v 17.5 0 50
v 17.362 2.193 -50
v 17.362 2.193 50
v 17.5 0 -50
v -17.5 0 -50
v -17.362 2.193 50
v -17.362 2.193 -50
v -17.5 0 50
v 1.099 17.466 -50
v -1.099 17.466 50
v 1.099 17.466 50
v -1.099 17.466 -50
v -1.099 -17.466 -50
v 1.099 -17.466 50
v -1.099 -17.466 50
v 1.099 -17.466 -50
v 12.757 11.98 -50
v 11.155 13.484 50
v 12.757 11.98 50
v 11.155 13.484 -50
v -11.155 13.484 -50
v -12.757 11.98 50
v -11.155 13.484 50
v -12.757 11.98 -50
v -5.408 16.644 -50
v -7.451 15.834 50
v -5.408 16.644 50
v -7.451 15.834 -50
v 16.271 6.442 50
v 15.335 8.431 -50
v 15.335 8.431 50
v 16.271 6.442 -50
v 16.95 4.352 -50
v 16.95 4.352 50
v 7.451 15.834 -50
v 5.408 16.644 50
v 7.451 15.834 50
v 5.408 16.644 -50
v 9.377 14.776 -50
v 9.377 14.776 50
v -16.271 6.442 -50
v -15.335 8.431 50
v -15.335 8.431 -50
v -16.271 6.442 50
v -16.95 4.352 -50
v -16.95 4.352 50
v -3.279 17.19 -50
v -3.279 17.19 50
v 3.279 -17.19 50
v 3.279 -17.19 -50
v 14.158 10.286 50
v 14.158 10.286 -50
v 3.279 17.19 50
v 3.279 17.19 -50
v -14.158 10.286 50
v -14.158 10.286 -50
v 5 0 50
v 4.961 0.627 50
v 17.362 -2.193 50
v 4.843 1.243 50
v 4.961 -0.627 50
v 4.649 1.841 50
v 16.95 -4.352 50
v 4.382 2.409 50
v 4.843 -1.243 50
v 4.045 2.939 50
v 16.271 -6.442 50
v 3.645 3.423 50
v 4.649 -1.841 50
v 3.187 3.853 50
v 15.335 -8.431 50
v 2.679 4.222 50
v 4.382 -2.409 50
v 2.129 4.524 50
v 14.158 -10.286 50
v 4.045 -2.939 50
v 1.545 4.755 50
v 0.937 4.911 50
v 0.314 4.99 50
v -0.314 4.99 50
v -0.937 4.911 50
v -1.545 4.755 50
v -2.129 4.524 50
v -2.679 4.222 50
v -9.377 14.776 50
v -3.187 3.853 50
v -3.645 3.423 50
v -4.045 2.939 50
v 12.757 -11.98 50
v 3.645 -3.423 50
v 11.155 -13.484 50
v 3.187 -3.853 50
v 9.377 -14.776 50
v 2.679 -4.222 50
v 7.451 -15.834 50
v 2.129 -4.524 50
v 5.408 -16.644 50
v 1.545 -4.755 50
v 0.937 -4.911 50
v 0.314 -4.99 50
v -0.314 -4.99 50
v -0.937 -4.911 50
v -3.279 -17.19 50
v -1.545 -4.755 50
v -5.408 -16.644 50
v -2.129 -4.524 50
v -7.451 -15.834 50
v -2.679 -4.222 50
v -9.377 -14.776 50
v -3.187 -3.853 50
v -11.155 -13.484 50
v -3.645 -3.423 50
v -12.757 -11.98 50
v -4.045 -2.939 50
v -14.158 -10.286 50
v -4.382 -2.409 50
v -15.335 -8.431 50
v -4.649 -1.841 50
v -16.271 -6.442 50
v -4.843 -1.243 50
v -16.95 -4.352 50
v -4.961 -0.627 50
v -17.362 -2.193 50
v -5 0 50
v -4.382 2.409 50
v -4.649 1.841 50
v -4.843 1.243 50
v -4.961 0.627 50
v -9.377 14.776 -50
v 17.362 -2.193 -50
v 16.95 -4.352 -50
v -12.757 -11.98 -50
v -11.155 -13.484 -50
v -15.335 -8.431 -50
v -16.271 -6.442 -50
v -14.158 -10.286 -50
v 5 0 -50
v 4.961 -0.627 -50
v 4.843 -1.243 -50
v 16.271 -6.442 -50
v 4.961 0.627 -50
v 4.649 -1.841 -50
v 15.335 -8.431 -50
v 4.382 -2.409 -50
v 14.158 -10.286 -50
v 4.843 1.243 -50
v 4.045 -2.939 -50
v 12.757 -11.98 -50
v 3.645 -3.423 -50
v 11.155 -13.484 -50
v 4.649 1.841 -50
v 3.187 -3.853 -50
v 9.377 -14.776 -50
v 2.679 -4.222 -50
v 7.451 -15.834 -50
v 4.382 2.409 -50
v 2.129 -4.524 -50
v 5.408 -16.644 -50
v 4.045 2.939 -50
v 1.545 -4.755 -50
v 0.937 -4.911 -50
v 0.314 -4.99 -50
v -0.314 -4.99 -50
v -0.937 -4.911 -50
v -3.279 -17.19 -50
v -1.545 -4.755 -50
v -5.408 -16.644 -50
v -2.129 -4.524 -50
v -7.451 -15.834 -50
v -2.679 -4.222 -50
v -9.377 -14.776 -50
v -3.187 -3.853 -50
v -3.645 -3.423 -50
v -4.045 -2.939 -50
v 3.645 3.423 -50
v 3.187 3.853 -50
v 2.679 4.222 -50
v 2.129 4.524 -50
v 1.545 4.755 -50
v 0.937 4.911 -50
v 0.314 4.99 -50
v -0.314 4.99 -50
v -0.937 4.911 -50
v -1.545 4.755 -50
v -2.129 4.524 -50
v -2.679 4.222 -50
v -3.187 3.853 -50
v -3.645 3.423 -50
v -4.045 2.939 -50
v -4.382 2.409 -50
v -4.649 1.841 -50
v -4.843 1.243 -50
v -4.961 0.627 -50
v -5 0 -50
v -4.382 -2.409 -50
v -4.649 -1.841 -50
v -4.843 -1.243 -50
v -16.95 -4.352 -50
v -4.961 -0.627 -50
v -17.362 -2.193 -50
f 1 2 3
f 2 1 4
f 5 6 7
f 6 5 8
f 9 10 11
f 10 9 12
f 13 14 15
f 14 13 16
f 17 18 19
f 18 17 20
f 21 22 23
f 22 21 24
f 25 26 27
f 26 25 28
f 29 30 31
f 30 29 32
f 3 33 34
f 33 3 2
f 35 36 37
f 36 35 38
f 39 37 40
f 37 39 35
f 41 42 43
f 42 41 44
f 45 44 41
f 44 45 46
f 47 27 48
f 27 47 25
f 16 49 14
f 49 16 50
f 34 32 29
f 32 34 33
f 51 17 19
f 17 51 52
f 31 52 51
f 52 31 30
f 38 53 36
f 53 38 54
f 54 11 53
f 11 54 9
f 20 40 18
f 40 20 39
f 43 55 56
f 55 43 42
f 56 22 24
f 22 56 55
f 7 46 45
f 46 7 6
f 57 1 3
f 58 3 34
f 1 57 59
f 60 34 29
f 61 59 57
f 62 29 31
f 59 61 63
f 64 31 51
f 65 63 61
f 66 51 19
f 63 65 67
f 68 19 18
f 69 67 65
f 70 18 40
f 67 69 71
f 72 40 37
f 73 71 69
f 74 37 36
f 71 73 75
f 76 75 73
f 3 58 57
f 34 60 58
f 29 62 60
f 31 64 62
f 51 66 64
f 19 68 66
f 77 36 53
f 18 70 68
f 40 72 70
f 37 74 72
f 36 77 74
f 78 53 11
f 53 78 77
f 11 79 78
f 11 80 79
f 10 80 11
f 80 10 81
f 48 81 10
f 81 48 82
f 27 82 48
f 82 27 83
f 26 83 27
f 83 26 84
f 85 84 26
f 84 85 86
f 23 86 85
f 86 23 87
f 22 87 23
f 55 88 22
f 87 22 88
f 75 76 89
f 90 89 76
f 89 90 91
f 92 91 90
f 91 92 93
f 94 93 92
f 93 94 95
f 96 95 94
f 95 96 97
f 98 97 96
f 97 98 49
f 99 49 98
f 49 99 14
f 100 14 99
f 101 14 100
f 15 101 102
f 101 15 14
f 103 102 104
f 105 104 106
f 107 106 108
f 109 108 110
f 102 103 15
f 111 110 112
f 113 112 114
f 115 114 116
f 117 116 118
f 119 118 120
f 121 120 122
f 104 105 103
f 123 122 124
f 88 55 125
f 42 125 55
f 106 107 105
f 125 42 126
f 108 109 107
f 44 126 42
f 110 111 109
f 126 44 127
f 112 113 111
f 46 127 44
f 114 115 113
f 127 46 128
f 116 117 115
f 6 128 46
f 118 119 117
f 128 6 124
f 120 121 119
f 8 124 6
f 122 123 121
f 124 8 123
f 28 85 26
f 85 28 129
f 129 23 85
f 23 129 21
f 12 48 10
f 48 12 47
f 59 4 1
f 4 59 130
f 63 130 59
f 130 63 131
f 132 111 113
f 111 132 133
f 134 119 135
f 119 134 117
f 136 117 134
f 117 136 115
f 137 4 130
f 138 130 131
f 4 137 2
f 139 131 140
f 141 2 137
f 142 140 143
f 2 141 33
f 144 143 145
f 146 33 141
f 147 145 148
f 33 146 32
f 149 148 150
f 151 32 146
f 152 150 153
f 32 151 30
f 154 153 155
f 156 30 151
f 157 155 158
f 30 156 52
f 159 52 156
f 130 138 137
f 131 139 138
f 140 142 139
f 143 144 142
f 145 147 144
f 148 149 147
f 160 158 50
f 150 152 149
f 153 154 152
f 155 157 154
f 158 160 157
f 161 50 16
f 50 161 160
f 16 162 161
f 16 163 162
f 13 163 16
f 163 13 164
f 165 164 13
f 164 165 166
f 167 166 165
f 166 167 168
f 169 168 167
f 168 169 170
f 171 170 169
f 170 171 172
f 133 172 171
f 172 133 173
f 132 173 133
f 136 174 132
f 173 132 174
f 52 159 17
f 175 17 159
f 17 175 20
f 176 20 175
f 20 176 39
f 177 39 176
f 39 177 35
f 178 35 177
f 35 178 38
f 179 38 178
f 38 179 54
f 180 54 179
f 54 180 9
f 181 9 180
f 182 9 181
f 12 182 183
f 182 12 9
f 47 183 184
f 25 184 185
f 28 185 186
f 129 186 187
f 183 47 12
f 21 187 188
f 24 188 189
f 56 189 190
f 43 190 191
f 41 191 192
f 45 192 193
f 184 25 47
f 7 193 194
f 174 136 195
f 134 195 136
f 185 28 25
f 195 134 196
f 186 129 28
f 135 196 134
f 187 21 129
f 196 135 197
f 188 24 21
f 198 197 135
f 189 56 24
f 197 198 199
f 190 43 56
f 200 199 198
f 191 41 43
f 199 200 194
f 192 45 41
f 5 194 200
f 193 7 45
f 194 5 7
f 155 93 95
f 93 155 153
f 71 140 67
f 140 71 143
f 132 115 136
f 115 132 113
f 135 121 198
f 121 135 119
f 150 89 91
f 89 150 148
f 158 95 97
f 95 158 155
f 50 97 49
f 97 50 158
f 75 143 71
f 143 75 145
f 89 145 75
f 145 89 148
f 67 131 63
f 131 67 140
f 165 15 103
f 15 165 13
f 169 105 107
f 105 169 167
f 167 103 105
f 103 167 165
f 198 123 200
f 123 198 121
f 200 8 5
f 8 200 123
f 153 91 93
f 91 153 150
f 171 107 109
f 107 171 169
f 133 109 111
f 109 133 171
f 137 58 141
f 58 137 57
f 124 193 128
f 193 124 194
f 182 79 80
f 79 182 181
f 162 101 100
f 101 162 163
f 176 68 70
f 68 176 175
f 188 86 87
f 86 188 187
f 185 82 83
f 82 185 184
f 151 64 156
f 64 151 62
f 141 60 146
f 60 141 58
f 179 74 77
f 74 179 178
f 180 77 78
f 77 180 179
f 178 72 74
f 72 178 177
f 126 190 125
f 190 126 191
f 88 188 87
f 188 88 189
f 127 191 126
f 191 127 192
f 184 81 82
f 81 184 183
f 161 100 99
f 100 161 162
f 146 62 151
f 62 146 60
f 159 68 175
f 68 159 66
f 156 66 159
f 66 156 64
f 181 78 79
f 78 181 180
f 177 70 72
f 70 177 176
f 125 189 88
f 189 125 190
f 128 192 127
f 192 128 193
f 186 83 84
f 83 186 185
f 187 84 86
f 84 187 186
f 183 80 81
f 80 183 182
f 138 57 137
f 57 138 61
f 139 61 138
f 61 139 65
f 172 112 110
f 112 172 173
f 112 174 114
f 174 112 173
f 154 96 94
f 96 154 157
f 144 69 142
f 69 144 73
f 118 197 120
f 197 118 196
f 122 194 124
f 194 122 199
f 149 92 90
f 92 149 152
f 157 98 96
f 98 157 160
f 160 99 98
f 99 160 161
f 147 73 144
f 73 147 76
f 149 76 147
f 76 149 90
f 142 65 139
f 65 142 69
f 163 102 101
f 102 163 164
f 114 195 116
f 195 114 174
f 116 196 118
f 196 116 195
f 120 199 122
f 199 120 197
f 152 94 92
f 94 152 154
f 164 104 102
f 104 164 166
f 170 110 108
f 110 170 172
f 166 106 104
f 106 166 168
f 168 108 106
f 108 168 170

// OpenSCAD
$fn = 50;


difference() {
	union() {
		translate(v = [0, 0, -50.0000000000]) {
			cylinder(h = 100, r = 17.5000000000);
		}
	}
	union() {
		translate(v = [0, 0, -100.0000000000]) {
			cylinder(h = 200, r = 5);
		}
	}
}
